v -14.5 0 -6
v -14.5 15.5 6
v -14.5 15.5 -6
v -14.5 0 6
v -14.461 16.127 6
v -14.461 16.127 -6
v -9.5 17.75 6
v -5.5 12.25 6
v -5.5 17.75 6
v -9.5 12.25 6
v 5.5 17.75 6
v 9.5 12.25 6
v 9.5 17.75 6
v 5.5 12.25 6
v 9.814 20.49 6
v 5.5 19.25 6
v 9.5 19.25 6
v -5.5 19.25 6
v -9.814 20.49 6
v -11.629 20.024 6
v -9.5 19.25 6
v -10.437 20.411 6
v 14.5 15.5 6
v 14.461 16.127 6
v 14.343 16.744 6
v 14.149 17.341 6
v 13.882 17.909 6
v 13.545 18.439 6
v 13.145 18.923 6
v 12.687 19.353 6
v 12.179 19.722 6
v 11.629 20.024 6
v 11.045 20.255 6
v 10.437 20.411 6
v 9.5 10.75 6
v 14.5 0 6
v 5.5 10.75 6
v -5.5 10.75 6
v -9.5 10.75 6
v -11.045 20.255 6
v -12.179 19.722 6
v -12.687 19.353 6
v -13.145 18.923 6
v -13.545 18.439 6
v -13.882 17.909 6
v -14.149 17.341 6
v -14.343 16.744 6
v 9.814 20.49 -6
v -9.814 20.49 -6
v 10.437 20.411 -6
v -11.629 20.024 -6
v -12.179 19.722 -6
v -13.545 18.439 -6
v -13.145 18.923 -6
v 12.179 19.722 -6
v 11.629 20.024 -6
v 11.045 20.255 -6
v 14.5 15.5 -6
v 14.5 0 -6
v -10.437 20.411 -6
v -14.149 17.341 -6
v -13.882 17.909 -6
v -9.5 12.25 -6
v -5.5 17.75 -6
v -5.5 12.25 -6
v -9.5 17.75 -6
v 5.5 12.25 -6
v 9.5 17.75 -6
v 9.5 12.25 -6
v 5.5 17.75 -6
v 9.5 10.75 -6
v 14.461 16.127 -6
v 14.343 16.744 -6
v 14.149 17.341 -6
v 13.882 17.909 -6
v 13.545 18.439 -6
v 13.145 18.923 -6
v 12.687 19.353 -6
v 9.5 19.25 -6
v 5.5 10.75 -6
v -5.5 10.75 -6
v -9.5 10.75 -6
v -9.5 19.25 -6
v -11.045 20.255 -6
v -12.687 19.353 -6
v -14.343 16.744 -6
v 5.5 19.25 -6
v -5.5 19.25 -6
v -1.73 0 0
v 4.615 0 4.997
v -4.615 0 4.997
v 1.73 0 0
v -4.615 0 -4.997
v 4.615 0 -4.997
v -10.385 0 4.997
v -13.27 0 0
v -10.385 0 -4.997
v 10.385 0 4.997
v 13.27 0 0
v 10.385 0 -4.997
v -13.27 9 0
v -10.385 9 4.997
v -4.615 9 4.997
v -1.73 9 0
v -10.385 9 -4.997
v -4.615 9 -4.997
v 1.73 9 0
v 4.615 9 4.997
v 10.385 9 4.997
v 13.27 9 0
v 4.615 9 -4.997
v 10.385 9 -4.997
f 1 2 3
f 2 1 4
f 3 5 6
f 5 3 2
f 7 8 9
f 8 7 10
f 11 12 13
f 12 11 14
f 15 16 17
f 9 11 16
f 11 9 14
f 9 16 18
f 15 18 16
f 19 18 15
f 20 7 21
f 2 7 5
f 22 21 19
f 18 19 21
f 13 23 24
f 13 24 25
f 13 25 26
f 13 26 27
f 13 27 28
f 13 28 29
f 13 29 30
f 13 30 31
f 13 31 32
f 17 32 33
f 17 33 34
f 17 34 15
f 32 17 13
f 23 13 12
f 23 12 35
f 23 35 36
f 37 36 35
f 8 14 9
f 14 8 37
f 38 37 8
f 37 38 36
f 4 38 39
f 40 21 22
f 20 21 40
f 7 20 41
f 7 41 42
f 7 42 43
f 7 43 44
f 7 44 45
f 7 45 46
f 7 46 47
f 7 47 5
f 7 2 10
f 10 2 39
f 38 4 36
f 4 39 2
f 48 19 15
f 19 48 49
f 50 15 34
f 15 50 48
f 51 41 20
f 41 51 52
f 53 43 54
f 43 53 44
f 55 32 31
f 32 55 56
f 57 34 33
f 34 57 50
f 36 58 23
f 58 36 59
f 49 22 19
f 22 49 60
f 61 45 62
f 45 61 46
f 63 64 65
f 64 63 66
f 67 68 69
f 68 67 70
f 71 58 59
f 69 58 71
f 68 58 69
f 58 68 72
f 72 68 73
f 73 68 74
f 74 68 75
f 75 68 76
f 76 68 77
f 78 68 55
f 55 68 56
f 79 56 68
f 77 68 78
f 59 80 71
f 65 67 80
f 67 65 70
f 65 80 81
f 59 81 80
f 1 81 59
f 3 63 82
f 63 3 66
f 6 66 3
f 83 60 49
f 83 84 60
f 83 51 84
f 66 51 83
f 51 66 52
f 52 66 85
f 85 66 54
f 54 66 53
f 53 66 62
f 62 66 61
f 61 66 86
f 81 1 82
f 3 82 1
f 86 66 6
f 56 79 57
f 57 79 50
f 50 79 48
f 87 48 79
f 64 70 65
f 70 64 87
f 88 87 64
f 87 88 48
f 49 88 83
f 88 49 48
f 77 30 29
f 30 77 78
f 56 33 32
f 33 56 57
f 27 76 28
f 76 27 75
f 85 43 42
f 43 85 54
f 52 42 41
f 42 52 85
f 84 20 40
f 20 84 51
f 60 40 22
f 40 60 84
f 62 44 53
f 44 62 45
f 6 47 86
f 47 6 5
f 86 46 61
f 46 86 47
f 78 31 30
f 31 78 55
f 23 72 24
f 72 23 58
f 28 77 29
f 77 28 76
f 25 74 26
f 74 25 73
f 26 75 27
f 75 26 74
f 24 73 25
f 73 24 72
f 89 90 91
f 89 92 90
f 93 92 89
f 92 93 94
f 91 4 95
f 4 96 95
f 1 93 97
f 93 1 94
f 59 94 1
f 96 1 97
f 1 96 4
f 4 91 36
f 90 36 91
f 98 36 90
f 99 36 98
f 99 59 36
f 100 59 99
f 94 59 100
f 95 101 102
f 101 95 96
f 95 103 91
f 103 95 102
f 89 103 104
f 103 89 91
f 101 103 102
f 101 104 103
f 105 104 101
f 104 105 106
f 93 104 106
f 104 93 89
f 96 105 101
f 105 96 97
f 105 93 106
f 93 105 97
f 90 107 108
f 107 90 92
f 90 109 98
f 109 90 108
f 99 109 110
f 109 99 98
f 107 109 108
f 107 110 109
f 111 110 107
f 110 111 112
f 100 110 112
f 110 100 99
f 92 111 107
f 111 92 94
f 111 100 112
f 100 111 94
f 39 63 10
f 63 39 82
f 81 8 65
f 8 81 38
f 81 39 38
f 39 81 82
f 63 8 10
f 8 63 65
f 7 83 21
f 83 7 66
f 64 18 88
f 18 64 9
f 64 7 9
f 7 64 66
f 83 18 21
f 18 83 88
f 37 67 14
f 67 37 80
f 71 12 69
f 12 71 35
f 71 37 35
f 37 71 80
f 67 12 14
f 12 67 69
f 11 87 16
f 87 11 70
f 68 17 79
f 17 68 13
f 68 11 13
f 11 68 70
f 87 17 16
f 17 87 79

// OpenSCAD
$fn = 50;


difference() {
	union() {
		translate(v = [0, 13.5000000000, -6.0000000000]) {
			hull() {
				translate(v = [-9.5000000000, 2.0000000000, 0]) {
					cylinder(h = 12, r = 5);
				}
				translate(v = [9.5000000000, 2.0000000000, 0]) {
					cylinder(h = 12, r = 5);
				}
				translate(v = [-9.5000000000, -2.0000000000, 0]) {
					cylinder(h = 12, r = 5);
				}
				translate(v = [9.5000000000, -2.0000000000, 0]) {
					cylinder(h = 12, r = 5);
				}
			}
		}
		translate(v = [0, 13.5000000000, -6.0000000000]) {
			hull() {
				translate(v = [-9.5000000000, 2.0000000000, 0]) {
					cylinder(h = 12, r = 5);
				}
				translate(v = [9.5000000000, 2.0000000000, 0]) {
					cylinder(h = 12, r = 5);
				}
				translate(v = [-9.5000000000, -2.0000000000, 0]) {
					cylinder(h = 12, r = 5);
				}
				translate(v = [9.5000000000, -2.0000000000, 0]) {
					cylinder(h = 12, r = 5);
				}
			}
		}
		translate(v = [-14.5000000000, 0, -6.0000000000]) {
			cube(size = [29, 13.5000000000, 12]);
		}
	}
	union() {
		translate(v = [-7.5000000000, 9, 0]) {
			rotate(a = [0, 0, 0]) {
				difference() {
					union() {
						rotate(a = [90, 0, 0]) {
							linear_extrude(height = 13.5000000000) {
								polygon(points = [[5.7700000000, 0.0000000000], [2.8850000000, 4.9969665798], [-2.8850000000, 4.9969665798], [-5.7700000000, 0.0000000000], [-2.8850000000, -4.9969665798], [2.8850000000, -4.9969665798]]);
							}
						}
					}
					union();
				}
			}
		}
		translate(v = [7.5000000000, 9, 0]) {
			rotate(a = [0, 0, 0]) {
				difference() {
					union() {
						rotate(a = [90, 0, 0]) {
							linear_extrude(height = 13.5000000000) {
								polygon(points = [[5.7700000000, 0.0000000000], [2.8850000000, 4.9969665798], [-2.8850000000, 4.9969665798], [-5.7700000000, 0.0000000000], [-2.8850000000, -4.9969665798], [2.8850000000, -4.9969665798]]);
							}
						}
					}
					union();
				}
			}
		}
		translate(v = [-9.5000000000, 10.7500000000, -50]) {
			cube(size = [4, 1.5000000000, 100]);
		}
		translate(v = [-9.5000000000, 17.7500000000, -50]) {
			cube(size = [4, 1.5000000000, 100]);
		}
		translate(v = [-7.5000000000, 8, 0]) {
			rotate(a = [90, 0, 0]) {
				cylinder(h = 8, r = 3.0000000000);
			}
		}
		translate(v = [5.5000000000, 10.7500000000, -50]) {
			cube(size = [4, 1.5000000000, 100]);
		}
		translate(v = [5.5000000000, 17.7500000000, -50]) {
			cube(size = [4, 1.5000000000, 100]);
		}
		translate(v = [7.5000000000, 8, 0]) {
			rotate(a = [90, 0, 0]) {
				cylinder(h = 8, r = 3.0000000000);
			}
		}
	}
}
